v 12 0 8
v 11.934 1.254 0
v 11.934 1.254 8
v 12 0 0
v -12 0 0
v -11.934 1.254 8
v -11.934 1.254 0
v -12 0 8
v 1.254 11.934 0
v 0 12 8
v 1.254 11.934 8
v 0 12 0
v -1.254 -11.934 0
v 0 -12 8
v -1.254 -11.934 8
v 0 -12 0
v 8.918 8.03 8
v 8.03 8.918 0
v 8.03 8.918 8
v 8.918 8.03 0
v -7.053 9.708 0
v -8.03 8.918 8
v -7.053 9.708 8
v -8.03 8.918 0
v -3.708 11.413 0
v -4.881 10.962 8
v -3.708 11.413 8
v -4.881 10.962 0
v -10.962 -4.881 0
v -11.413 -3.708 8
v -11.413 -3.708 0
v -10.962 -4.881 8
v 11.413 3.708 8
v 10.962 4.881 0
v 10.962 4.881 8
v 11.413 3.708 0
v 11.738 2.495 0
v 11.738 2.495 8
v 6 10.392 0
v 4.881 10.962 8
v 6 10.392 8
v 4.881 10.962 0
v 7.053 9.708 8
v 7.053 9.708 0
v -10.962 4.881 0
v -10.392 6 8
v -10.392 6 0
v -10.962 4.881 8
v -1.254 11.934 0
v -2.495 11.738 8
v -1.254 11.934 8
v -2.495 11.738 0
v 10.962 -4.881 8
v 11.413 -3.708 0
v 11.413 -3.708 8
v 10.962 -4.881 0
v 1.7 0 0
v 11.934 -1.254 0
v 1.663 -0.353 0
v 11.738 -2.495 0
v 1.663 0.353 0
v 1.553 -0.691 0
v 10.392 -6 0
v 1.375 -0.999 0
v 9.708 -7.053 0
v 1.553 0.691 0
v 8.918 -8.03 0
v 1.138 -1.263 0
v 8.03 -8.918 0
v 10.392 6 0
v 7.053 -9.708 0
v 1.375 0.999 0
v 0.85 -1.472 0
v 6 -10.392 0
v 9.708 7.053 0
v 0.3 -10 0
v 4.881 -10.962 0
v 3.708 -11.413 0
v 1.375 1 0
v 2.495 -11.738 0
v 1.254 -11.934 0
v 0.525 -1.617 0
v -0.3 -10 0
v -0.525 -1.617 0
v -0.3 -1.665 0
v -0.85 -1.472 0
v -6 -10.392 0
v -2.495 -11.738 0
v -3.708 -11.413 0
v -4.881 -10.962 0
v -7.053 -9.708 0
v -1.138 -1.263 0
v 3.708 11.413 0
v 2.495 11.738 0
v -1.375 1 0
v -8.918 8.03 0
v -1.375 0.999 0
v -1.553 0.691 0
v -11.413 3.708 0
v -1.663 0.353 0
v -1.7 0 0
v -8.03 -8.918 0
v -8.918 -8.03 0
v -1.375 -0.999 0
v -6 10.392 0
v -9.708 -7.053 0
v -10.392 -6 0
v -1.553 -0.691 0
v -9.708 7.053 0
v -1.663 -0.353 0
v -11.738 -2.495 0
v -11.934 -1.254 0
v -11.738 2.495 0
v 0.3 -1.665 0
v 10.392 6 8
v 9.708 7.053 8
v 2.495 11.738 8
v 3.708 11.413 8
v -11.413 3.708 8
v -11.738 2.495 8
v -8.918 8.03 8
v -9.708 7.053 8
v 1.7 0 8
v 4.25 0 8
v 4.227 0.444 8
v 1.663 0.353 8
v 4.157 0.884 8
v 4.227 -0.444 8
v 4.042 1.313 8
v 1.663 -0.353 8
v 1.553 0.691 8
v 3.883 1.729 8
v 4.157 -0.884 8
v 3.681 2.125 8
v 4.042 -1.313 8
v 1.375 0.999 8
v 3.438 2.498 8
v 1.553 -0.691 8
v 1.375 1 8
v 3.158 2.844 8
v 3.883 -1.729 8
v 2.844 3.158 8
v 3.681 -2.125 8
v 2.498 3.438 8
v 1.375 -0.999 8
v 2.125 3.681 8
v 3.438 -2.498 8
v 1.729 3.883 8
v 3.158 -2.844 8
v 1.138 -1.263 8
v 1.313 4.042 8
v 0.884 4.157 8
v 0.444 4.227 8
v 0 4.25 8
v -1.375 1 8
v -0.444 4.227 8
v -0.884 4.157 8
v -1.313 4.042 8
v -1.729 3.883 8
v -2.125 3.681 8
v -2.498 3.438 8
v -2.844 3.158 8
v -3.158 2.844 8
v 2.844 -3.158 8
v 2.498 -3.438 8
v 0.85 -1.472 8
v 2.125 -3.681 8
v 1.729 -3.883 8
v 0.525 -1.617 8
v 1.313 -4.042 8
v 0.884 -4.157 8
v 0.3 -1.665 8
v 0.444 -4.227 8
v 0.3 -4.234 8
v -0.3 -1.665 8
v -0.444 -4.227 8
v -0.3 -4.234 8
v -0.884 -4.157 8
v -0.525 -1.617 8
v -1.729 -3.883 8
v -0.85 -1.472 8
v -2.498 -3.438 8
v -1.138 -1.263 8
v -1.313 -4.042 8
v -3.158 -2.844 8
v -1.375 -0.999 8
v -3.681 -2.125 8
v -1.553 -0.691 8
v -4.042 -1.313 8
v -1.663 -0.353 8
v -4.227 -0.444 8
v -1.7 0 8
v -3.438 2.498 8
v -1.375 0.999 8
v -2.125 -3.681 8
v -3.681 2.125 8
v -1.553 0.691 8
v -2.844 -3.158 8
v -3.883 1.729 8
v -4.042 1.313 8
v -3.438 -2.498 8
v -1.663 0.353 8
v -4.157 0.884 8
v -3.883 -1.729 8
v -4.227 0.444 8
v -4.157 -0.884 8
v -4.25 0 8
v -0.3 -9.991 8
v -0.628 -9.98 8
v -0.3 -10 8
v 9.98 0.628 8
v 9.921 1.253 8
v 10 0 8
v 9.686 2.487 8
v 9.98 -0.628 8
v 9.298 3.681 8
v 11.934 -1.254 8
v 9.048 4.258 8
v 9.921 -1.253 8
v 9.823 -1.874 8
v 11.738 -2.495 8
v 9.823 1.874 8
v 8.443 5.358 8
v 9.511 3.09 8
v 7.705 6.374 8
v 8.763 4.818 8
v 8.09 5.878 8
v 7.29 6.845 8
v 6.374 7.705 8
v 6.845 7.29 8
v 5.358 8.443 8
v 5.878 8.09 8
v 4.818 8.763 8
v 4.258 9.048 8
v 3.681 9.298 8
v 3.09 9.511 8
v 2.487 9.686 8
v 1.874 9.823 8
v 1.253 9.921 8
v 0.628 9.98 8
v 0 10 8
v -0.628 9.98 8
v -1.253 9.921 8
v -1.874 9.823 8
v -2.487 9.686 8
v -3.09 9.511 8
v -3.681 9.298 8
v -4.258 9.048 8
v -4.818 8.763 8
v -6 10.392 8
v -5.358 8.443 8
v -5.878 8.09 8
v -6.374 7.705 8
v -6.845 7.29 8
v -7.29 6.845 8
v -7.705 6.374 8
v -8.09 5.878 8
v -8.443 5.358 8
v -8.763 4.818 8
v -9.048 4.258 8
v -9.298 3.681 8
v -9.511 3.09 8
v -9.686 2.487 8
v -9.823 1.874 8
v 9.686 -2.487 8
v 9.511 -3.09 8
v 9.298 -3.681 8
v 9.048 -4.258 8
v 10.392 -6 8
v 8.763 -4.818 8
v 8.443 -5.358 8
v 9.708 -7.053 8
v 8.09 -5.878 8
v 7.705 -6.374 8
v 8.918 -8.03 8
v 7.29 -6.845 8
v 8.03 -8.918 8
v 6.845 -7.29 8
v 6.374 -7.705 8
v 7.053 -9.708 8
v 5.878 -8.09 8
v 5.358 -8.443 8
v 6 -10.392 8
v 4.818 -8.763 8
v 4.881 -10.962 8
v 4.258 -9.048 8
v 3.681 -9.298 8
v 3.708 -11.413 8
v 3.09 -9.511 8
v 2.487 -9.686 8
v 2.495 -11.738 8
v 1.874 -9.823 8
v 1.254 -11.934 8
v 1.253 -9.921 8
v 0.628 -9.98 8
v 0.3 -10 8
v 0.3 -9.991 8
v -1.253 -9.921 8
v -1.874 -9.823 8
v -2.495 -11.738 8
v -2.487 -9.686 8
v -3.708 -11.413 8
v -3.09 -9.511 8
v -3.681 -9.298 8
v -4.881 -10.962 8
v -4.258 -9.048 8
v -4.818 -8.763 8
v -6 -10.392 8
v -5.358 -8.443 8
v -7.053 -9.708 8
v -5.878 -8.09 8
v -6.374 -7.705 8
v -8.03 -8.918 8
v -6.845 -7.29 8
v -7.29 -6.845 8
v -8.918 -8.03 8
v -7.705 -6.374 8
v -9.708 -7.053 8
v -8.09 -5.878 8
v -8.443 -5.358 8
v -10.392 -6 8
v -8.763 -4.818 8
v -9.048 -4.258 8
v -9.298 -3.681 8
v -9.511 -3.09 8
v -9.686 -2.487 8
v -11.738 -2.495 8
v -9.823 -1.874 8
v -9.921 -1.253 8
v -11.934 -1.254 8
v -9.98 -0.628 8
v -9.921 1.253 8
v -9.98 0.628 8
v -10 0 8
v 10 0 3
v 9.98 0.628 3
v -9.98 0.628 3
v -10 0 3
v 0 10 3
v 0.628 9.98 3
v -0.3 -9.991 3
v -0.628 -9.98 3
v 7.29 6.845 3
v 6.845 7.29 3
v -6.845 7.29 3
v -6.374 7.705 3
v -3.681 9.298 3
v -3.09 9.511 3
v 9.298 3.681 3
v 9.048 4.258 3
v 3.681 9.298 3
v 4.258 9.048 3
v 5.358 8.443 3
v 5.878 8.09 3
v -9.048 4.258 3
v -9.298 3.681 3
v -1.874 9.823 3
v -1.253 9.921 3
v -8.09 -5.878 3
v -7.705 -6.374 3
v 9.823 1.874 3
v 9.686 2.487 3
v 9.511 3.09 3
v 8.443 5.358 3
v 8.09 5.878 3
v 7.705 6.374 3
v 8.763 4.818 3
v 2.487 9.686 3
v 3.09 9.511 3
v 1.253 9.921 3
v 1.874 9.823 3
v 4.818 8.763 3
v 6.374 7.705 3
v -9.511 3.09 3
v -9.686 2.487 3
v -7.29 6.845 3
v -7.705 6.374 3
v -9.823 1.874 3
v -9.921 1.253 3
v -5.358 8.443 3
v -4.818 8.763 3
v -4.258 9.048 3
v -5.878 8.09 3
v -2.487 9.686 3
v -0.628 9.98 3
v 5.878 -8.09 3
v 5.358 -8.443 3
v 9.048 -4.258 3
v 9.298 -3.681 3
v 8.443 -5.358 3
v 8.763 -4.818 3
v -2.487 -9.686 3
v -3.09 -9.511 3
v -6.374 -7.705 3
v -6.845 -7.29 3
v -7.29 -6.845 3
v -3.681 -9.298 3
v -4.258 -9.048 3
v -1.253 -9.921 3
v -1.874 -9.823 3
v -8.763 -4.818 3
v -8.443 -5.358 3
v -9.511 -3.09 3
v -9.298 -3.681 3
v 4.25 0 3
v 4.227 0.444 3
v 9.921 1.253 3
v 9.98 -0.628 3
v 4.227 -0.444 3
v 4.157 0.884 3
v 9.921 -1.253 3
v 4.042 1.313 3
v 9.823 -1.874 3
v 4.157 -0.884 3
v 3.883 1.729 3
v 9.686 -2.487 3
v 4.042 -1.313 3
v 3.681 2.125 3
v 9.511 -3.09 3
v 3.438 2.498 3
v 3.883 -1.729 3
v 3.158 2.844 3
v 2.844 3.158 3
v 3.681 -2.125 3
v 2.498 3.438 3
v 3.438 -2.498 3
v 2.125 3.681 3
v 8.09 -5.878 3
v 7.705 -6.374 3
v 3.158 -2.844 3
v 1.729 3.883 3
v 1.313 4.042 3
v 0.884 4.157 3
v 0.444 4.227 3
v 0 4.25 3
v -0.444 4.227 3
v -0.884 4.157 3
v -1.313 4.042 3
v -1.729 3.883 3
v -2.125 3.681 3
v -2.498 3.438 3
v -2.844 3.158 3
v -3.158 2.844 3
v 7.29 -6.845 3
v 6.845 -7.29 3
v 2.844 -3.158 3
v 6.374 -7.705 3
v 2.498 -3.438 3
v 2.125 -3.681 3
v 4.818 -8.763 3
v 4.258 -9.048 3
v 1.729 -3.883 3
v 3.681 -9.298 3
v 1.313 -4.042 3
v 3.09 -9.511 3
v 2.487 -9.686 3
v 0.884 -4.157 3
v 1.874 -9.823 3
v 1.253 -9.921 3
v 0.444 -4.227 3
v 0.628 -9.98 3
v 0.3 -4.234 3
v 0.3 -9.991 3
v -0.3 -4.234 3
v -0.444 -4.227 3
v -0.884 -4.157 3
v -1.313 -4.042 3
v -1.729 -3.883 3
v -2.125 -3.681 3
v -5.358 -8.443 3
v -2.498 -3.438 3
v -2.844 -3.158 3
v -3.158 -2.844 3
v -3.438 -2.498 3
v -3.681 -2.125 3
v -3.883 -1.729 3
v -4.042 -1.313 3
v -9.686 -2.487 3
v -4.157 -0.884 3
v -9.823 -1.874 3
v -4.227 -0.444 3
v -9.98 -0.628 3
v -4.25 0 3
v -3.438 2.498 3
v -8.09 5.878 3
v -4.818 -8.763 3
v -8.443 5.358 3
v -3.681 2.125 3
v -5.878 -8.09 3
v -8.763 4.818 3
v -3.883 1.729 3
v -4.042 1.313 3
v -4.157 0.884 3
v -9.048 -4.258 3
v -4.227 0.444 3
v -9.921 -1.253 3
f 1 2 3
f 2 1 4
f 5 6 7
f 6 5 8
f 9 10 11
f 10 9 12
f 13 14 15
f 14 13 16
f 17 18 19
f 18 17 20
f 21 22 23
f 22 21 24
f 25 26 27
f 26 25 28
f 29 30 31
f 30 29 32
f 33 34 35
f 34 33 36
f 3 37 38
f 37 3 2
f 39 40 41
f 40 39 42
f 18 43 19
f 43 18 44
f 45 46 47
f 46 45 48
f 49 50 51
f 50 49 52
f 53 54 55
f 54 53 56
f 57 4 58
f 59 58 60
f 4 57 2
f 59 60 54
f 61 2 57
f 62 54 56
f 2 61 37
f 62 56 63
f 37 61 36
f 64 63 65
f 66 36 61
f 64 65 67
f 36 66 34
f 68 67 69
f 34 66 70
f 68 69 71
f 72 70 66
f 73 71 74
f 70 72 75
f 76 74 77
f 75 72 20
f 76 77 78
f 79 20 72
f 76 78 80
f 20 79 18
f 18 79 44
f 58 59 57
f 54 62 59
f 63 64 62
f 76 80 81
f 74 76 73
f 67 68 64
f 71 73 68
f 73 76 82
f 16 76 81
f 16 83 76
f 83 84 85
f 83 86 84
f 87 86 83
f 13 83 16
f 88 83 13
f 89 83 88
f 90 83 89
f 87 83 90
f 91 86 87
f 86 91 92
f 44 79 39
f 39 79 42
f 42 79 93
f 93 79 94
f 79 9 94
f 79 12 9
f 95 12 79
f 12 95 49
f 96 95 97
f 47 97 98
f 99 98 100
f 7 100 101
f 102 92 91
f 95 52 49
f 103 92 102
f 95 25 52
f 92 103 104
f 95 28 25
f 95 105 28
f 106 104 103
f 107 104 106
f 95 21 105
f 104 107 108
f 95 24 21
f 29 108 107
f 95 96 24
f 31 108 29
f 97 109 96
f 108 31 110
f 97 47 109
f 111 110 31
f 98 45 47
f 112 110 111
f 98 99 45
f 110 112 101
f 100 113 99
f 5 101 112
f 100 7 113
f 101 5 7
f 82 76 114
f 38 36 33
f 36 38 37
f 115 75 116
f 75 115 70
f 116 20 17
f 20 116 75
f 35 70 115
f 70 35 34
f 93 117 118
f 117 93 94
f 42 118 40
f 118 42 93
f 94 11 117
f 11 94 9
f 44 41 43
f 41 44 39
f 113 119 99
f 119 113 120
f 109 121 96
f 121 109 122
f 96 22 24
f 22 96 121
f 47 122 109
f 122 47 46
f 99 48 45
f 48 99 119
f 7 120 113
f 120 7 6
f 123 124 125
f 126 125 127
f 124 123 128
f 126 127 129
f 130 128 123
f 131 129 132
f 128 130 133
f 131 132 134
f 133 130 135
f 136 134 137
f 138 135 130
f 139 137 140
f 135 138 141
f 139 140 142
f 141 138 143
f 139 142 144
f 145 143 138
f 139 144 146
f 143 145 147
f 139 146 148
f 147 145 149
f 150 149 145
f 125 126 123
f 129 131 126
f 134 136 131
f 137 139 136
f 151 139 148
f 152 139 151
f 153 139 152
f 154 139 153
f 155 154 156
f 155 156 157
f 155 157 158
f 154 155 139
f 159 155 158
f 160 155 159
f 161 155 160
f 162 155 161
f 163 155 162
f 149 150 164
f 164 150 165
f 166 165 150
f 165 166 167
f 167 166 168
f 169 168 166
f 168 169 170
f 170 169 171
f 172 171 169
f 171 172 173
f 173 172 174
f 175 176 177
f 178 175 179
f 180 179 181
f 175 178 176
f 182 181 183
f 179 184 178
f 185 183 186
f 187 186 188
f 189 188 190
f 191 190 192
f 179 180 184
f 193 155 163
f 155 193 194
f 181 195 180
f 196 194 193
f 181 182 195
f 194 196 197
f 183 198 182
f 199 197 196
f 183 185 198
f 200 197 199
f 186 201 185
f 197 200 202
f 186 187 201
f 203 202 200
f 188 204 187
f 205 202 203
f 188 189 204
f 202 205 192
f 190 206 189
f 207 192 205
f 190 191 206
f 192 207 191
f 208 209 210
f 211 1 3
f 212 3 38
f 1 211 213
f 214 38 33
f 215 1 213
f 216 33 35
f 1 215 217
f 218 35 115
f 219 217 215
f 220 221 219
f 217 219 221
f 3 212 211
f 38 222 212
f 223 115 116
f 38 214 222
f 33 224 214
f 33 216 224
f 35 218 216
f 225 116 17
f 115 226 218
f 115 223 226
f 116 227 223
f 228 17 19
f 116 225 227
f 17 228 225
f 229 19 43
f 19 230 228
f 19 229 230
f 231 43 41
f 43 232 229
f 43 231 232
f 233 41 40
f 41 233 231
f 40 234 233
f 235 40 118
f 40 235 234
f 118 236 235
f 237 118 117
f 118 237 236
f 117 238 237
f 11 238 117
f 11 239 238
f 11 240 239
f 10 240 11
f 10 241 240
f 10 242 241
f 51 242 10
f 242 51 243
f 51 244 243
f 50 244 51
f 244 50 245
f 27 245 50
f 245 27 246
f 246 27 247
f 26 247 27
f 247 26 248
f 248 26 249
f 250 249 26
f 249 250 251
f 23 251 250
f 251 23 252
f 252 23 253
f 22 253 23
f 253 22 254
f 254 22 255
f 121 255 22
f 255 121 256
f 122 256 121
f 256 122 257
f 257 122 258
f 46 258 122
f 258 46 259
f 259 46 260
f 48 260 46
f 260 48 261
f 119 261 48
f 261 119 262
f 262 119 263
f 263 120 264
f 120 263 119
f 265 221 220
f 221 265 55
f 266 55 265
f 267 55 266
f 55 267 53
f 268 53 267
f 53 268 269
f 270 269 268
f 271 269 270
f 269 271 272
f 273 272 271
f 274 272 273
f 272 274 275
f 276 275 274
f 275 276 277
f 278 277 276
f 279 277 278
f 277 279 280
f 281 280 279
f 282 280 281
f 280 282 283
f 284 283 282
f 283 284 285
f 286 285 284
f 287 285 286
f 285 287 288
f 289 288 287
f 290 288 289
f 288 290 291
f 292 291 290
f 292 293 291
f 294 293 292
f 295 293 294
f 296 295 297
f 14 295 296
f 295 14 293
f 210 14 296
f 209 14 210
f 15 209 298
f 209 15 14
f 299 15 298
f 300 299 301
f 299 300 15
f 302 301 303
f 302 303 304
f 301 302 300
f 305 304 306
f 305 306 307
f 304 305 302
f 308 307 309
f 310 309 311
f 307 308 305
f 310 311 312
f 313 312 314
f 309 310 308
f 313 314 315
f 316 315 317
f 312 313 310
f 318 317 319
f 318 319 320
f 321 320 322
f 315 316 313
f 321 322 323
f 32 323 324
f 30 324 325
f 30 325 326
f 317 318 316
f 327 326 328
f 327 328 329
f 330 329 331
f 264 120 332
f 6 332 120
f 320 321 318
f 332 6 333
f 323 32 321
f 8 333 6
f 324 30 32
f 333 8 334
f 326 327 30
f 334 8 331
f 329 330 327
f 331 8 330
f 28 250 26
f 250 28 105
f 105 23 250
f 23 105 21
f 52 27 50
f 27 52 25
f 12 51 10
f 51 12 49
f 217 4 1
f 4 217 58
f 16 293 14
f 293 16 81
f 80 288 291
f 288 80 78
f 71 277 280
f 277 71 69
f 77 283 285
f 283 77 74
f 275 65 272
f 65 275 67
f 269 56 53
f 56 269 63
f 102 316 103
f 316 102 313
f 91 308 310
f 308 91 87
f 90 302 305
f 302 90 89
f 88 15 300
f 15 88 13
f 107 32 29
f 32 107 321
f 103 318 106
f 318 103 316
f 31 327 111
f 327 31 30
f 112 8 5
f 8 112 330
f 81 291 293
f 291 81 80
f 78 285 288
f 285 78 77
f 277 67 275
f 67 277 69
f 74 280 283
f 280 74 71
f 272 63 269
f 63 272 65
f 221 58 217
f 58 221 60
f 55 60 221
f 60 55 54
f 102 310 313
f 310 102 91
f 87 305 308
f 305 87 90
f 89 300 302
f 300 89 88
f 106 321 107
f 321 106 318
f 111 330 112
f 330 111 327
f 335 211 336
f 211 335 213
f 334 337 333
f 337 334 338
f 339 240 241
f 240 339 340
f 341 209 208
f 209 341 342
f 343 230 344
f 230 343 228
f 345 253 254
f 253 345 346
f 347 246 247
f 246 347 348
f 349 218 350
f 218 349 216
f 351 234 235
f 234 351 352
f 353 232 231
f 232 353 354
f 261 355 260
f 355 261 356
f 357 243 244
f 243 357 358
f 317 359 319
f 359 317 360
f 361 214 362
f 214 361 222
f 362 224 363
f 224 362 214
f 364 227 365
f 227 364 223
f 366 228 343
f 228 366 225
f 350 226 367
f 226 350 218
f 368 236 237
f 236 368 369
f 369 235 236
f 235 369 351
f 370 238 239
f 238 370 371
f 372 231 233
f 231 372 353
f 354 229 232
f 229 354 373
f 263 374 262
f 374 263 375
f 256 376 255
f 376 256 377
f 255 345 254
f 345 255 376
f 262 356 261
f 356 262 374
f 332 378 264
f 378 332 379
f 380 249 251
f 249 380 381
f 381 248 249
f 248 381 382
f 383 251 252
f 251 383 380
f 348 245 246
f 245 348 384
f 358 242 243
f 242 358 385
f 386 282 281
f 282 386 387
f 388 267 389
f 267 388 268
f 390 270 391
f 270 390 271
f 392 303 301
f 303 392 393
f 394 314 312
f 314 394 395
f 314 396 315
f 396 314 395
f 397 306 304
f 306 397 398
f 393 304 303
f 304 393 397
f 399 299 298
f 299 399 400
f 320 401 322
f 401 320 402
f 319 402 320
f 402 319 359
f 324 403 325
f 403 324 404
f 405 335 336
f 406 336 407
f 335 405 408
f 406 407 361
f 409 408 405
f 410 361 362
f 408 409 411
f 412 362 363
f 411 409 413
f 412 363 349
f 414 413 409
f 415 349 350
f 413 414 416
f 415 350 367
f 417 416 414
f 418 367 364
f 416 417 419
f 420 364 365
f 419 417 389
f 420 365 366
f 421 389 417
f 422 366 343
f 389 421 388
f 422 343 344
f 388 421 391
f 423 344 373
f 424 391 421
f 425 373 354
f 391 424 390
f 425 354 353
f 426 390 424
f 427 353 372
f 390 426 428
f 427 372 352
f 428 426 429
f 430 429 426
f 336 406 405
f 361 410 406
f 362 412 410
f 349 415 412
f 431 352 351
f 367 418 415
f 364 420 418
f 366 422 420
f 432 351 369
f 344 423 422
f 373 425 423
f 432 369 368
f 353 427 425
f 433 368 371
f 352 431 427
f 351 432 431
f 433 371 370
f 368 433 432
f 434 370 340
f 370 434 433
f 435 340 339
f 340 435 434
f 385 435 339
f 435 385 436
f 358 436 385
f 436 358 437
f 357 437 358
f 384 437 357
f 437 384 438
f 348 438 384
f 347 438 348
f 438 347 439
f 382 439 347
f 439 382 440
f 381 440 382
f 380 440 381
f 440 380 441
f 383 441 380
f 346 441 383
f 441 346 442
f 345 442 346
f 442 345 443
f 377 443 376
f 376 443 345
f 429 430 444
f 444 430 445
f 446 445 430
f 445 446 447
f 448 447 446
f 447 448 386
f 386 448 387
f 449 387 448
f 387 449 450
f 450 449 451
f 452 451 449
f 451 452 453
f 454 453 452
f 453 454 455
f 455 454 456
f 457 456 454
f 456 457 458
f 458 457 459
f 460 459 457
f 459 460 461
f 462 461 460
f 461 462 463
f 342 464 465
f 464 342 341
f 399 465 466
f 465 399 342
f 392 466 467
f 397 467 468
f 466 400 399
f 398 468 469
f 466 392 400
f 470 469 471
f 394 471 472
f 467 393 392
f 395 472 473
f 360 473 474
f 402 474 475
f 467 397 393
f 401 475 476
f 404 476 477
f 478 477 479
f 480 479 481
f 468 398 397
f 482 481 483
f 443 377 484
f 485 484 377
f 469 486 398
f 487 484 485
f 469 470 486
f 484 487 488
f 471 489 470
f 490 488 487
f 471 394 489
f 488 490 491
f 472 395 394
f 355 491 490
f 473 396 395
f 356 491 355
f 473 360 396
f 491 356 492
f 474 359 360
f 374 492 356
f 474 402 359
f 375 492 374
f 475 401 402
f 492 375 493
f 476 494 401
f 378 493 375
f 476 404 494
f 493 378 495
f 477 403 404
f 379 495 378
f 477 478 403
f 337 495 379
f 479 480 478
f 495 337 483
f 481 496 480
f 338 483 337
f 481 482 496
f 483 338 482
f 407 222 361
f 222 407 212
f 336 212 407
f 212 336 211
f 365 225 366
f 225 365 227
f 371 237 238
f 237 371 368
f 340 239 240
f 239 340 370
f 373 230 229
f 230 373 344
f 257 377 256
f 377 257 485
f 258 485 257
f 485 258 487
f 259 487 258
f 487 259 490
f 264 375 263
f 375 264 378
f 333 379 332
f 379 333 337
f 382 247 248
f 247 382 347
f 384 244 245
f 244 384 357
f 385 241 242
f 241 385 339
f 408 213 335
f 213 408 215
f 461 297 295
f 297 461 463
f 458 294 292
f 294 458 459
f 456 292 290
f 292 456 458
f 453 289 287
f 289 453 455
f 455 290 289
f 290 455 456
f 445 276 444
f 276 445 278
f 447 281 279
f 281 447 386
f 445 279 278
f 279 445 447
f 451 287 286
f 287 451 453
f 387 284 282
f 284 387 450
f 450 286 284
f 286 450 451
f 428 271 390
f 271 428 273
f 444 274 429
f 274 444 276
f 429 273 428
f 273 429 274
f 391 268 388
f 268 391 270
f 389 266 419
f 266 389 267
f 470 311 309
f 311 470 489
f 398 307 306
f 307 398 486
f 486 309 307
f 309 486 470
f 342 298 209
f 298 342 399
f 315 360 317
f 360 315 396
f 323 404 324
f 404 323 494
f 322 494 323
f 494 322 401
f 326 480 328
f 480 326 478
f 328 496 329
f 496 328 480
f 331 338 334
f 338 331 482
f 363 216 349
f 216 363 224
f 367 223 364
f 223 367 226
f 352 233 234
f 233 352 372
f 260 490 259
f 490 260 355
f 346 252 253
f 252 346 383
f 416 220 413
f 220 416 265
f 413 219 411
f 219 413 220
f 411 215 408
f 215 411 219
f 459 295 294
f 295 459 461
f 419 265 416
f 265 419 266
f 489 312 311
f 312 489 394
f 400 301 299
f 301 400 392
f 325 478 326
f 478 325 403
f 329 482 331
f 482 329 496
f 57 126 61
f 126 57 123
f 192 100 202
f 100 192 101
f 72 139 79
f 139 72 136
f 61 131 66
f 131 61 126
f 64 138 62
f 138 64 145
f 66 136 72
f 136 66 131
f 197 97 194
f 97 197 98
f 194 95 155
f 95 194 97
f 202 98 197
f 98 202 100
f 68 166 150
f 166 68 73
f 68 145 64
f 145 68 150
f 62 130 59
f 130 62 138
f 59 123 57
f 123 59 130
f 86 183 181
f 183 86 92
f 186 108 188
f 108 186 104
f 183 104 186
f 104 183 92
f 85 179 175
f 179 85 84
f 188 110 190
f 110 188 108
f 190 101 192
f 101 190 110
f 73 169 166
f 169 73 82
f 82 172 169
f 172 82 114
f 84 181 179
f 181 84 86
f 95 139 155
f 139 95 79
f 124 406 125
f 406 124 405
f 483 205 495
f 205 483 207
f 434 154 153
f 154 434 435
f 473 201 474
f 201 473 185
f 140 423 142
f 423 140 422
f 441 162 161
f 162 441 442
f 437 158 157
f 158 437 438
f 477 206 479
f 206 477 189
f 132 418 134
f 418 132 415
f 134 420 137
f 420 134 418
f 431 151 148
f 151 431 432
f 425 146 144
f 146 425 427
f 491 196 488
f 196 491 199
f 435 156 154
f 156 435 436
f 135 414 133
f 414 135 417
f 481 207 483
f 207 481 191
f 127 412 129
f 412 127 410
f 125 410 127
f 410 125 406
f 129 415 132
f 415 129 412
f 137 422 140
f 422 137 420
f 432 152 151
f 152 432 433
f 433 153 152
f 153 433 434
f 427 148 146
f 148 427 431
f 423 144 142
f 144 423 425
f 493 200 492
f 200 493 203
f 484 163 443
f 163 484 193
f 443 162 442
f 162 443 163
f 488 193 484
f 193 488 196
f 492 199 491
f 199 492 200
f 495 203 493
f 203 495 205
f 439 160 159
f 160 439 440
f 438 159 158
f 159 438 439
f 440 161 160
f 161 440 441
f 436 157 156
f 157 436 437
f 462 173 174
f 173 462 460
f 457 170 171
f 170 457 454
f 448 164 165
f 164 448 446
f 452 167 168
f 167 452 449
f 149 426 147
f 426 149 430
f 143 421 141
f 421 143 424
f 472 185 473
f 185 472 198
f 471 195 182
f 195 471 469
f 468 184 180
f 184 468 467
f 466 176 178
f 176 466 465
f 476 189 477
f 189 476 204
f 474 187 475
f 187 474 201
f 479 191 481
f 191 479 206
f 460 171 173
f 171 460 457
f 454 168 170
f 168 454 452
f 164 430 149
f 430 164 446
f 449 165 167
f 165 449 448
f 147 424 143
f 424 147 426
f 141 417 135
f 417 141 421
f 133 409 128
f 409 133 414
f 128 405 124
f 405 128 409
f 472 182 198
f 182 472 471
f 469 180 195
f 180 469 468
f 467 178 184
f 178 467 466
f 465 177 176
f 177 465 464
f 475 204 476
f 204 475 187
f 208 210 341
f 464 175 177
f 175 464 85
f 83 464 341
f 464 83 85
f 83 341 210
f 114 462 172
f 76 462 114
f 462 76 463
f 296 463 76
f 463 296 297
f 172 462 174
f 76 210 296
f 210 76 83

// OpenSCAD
anchoRoda=8;
radio=12;
radioEixo=1.7;

difference(){
union(){
difference(){
    //cilindro exterior
    cylinder(r=radio, h=anchoRoda,$fn=60);
    //cylindro oco
    translate([0,0,3]) cylinder(r=radio-2, h=anchoRoda,$fn=100);
}

//cilindro portaeixo 
cylinder(r=radioEixo*2.5, h=anchoRoda,$fn=60);
}

translate([0,0,-1]) eixo();
translate([-0.3,-10,0]) cube([0.6,10,8]);
}



module eixo(){
difference(){
cylinder(r=radioEixo,h=12,$fn=30);
translate([-2,1,-2])  cube ([4,1,14]);
}
}
